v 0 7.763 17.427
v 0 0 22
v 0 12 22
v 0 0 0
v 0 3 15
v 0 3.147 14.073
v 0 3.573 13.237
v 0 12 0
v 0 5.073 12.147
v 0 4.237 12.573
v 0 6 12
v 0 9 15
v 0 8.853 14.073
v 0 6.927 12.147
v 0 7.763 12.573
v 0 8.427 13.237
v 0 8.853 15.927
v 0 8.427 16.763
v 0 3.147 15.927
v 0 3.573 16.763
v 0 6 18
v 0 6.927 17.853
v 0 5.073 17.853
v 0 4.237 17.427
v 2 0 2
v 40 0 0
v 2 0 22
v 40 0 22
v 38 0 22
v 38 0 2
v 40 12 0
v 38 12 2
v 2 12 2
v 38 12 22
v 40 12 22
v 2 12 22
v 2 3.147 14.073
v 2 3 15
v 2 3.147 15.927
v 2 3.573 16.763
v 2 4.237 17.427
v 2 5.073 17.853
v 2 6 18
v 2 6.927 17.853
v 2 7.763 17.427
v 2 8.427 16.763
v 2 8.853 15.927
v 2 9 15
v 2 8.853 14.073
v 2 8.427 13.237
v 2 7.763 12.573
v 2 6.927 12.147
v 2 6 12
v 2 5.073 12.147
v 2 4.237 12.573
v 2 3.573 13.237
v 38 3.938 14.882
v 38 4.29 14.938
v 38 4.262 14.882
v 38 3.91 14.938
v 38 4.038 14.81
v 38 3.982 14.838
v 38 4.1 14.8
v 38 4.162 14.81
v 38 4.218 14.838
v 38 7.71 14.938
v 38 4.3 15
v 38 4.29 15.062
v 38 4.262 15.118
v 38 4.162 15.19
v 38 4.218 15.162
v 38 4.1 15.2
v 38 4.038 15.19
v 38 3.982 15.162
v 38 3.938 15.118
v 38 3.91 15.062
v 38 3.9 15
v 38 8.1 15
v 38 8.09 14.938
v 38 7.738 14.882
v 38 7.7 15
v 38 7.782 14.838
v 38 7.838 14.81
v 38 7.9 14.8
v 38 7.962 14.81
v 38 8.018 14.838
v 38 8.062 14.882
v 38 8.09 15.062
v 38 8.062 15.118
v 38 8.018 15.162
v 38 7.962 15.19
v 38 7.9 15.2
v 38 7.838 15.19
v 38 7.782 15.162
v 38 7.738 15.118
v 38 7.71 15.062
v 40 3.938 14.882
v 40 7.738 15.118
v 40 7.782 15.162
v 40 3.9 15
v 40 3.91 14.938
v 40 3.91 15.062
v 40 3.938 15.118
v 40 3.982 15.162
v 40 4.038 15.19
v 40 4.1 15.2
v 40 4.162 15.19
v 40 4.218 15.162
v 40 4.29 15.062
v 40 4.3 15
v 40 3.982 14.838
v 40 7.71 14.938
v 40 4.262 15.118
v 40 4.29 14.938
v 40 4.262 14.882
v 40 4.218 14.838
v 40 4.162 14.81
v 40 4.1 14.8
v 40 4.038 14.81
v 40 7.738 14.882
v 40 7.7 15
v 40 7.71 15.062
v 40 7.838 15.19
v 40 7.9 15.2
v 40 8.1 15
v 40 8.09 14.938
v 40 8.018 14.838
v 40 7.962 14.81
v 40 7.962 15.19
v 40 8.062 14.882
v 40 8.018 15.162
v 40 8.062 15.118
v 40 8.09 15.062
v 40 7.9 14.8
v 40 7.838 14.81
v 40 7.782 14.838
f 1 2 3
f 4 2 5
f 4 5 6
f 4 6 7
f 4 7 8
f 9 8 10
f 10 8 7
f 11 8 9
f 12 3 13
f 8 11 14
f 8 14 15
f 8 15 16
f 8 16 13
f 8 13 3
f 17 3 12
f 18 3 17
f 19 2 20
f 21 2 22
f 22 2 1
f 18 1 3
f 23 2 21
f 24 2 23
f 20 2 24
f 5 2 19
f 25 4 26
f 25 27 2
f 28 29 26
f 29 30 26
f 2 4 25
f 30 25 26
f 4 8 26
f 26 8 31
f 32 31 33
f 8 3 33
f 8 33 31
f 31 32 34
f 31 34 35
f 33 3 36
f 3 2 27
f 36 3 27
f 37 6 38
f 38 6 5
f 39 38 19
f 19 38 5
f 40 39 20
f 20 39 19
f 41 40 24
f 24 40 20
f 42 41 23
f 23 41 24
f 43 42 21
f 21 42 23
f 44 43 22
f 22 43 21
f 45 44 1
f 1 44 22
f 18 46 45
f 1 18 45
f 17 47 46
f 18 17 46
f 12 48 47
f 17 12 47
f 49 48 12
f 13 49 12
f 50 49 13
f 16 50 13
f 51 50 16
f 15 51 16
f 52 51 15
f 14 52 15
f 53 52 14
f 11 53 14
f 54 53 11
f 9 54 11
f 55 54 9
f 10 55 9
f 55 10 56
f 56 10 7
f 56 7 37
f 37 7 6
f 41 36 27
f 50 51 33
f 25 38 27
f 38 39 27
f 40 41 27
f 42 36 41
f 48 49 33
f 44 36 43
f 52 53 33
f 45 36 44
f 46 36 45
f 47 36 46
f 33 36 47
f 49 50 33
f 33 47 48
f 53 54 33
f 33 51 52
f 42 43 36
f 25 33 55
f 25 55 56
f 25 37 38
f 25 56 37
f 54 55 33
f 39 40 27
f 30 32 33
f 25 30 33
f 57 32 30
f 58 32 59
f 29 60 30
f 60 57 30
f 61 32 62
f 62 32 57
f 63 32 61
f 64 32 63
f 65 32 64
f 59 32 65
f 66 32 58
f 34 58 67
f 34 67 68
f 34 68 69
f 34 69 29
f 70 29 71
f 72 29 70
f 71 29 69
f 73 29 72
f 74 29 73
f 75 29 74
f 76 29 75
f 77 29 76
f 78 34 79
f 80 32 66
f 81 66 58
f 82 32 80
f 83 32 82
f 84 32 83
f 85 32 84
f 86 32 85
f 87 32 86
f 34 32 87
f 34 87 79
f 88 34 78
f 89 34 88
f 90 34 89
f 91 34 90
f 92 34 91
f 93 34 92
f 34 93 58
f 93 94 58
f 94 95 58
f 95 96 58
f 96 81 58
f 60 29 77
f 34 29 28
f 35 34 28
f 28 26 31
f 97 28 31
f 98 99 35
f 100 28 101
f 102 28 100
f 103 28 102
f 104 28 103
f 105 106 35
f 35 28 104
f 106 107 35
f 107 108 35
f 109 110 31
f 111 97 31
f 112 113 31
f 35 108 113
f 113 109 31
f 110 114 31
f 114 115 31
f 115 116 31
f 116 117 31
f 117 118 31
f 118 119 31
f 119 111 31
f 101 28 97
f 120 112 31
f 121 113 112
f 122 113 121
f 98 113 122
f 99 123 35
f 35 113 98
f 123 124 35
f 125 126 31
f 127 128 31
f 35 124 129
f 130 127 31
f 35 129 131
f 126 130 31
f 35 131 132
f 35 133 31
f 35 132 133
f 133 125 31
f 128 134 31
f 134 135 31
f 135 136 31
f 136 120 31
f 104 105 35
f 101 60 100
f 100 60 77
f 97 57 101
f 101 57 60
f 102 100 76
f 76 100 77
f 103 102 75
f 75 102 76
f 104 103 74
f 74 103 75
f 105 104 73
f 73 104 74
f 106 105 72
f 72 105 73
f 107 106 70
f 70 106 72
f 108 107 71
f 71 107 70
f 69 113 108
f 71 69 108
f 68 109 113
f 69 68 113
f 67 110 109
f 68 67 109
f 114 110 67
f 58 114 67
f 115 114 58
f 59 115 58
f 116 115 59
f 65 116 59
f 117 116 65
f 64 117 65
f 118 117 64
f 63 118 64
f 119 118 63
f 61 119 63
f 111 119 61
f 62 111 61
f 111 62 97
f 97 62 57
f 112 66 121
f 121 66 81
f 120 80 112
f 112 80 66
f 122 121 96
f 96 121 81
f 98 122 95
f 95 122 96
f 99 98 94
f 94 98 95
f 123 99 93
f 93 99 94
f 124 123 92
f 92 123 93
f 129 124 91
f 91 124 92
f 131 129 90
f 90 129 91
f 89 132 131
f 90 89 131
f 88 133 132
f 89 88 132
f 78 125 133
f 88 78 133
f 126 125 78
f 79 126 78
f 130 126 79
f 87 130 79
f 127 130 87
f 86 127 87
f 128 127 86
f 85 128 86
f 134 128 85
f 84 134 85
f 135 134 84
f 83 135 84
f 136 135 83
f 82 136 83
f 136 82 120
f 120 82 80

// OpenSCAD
module holder() {
  difference(){
    cube(size=[40,12,22], center=false); // base cube
    translate([2,-1,2]) cube(size=[36,22,40], center=false); // hollow cube
    rotate([0,90,0]) translate([-15,6,-2]) cylinder(h=5, r=3, center=false, $fn=20);
    rotate([0,90,0]) translate([-15,4.1,35]) cylinder(h=6, r=.2, center=false, $fn=20);
    rotate([0,90,0]) translate([-15,7.9,35]) cylinder(h=6, r=.2, center=false, $fn=20);
  }
  //rotate([0,90,0]) translate([-30,6,40]) cylinder(h=5, r=3, center=false, $fn=20);
}
holder();
